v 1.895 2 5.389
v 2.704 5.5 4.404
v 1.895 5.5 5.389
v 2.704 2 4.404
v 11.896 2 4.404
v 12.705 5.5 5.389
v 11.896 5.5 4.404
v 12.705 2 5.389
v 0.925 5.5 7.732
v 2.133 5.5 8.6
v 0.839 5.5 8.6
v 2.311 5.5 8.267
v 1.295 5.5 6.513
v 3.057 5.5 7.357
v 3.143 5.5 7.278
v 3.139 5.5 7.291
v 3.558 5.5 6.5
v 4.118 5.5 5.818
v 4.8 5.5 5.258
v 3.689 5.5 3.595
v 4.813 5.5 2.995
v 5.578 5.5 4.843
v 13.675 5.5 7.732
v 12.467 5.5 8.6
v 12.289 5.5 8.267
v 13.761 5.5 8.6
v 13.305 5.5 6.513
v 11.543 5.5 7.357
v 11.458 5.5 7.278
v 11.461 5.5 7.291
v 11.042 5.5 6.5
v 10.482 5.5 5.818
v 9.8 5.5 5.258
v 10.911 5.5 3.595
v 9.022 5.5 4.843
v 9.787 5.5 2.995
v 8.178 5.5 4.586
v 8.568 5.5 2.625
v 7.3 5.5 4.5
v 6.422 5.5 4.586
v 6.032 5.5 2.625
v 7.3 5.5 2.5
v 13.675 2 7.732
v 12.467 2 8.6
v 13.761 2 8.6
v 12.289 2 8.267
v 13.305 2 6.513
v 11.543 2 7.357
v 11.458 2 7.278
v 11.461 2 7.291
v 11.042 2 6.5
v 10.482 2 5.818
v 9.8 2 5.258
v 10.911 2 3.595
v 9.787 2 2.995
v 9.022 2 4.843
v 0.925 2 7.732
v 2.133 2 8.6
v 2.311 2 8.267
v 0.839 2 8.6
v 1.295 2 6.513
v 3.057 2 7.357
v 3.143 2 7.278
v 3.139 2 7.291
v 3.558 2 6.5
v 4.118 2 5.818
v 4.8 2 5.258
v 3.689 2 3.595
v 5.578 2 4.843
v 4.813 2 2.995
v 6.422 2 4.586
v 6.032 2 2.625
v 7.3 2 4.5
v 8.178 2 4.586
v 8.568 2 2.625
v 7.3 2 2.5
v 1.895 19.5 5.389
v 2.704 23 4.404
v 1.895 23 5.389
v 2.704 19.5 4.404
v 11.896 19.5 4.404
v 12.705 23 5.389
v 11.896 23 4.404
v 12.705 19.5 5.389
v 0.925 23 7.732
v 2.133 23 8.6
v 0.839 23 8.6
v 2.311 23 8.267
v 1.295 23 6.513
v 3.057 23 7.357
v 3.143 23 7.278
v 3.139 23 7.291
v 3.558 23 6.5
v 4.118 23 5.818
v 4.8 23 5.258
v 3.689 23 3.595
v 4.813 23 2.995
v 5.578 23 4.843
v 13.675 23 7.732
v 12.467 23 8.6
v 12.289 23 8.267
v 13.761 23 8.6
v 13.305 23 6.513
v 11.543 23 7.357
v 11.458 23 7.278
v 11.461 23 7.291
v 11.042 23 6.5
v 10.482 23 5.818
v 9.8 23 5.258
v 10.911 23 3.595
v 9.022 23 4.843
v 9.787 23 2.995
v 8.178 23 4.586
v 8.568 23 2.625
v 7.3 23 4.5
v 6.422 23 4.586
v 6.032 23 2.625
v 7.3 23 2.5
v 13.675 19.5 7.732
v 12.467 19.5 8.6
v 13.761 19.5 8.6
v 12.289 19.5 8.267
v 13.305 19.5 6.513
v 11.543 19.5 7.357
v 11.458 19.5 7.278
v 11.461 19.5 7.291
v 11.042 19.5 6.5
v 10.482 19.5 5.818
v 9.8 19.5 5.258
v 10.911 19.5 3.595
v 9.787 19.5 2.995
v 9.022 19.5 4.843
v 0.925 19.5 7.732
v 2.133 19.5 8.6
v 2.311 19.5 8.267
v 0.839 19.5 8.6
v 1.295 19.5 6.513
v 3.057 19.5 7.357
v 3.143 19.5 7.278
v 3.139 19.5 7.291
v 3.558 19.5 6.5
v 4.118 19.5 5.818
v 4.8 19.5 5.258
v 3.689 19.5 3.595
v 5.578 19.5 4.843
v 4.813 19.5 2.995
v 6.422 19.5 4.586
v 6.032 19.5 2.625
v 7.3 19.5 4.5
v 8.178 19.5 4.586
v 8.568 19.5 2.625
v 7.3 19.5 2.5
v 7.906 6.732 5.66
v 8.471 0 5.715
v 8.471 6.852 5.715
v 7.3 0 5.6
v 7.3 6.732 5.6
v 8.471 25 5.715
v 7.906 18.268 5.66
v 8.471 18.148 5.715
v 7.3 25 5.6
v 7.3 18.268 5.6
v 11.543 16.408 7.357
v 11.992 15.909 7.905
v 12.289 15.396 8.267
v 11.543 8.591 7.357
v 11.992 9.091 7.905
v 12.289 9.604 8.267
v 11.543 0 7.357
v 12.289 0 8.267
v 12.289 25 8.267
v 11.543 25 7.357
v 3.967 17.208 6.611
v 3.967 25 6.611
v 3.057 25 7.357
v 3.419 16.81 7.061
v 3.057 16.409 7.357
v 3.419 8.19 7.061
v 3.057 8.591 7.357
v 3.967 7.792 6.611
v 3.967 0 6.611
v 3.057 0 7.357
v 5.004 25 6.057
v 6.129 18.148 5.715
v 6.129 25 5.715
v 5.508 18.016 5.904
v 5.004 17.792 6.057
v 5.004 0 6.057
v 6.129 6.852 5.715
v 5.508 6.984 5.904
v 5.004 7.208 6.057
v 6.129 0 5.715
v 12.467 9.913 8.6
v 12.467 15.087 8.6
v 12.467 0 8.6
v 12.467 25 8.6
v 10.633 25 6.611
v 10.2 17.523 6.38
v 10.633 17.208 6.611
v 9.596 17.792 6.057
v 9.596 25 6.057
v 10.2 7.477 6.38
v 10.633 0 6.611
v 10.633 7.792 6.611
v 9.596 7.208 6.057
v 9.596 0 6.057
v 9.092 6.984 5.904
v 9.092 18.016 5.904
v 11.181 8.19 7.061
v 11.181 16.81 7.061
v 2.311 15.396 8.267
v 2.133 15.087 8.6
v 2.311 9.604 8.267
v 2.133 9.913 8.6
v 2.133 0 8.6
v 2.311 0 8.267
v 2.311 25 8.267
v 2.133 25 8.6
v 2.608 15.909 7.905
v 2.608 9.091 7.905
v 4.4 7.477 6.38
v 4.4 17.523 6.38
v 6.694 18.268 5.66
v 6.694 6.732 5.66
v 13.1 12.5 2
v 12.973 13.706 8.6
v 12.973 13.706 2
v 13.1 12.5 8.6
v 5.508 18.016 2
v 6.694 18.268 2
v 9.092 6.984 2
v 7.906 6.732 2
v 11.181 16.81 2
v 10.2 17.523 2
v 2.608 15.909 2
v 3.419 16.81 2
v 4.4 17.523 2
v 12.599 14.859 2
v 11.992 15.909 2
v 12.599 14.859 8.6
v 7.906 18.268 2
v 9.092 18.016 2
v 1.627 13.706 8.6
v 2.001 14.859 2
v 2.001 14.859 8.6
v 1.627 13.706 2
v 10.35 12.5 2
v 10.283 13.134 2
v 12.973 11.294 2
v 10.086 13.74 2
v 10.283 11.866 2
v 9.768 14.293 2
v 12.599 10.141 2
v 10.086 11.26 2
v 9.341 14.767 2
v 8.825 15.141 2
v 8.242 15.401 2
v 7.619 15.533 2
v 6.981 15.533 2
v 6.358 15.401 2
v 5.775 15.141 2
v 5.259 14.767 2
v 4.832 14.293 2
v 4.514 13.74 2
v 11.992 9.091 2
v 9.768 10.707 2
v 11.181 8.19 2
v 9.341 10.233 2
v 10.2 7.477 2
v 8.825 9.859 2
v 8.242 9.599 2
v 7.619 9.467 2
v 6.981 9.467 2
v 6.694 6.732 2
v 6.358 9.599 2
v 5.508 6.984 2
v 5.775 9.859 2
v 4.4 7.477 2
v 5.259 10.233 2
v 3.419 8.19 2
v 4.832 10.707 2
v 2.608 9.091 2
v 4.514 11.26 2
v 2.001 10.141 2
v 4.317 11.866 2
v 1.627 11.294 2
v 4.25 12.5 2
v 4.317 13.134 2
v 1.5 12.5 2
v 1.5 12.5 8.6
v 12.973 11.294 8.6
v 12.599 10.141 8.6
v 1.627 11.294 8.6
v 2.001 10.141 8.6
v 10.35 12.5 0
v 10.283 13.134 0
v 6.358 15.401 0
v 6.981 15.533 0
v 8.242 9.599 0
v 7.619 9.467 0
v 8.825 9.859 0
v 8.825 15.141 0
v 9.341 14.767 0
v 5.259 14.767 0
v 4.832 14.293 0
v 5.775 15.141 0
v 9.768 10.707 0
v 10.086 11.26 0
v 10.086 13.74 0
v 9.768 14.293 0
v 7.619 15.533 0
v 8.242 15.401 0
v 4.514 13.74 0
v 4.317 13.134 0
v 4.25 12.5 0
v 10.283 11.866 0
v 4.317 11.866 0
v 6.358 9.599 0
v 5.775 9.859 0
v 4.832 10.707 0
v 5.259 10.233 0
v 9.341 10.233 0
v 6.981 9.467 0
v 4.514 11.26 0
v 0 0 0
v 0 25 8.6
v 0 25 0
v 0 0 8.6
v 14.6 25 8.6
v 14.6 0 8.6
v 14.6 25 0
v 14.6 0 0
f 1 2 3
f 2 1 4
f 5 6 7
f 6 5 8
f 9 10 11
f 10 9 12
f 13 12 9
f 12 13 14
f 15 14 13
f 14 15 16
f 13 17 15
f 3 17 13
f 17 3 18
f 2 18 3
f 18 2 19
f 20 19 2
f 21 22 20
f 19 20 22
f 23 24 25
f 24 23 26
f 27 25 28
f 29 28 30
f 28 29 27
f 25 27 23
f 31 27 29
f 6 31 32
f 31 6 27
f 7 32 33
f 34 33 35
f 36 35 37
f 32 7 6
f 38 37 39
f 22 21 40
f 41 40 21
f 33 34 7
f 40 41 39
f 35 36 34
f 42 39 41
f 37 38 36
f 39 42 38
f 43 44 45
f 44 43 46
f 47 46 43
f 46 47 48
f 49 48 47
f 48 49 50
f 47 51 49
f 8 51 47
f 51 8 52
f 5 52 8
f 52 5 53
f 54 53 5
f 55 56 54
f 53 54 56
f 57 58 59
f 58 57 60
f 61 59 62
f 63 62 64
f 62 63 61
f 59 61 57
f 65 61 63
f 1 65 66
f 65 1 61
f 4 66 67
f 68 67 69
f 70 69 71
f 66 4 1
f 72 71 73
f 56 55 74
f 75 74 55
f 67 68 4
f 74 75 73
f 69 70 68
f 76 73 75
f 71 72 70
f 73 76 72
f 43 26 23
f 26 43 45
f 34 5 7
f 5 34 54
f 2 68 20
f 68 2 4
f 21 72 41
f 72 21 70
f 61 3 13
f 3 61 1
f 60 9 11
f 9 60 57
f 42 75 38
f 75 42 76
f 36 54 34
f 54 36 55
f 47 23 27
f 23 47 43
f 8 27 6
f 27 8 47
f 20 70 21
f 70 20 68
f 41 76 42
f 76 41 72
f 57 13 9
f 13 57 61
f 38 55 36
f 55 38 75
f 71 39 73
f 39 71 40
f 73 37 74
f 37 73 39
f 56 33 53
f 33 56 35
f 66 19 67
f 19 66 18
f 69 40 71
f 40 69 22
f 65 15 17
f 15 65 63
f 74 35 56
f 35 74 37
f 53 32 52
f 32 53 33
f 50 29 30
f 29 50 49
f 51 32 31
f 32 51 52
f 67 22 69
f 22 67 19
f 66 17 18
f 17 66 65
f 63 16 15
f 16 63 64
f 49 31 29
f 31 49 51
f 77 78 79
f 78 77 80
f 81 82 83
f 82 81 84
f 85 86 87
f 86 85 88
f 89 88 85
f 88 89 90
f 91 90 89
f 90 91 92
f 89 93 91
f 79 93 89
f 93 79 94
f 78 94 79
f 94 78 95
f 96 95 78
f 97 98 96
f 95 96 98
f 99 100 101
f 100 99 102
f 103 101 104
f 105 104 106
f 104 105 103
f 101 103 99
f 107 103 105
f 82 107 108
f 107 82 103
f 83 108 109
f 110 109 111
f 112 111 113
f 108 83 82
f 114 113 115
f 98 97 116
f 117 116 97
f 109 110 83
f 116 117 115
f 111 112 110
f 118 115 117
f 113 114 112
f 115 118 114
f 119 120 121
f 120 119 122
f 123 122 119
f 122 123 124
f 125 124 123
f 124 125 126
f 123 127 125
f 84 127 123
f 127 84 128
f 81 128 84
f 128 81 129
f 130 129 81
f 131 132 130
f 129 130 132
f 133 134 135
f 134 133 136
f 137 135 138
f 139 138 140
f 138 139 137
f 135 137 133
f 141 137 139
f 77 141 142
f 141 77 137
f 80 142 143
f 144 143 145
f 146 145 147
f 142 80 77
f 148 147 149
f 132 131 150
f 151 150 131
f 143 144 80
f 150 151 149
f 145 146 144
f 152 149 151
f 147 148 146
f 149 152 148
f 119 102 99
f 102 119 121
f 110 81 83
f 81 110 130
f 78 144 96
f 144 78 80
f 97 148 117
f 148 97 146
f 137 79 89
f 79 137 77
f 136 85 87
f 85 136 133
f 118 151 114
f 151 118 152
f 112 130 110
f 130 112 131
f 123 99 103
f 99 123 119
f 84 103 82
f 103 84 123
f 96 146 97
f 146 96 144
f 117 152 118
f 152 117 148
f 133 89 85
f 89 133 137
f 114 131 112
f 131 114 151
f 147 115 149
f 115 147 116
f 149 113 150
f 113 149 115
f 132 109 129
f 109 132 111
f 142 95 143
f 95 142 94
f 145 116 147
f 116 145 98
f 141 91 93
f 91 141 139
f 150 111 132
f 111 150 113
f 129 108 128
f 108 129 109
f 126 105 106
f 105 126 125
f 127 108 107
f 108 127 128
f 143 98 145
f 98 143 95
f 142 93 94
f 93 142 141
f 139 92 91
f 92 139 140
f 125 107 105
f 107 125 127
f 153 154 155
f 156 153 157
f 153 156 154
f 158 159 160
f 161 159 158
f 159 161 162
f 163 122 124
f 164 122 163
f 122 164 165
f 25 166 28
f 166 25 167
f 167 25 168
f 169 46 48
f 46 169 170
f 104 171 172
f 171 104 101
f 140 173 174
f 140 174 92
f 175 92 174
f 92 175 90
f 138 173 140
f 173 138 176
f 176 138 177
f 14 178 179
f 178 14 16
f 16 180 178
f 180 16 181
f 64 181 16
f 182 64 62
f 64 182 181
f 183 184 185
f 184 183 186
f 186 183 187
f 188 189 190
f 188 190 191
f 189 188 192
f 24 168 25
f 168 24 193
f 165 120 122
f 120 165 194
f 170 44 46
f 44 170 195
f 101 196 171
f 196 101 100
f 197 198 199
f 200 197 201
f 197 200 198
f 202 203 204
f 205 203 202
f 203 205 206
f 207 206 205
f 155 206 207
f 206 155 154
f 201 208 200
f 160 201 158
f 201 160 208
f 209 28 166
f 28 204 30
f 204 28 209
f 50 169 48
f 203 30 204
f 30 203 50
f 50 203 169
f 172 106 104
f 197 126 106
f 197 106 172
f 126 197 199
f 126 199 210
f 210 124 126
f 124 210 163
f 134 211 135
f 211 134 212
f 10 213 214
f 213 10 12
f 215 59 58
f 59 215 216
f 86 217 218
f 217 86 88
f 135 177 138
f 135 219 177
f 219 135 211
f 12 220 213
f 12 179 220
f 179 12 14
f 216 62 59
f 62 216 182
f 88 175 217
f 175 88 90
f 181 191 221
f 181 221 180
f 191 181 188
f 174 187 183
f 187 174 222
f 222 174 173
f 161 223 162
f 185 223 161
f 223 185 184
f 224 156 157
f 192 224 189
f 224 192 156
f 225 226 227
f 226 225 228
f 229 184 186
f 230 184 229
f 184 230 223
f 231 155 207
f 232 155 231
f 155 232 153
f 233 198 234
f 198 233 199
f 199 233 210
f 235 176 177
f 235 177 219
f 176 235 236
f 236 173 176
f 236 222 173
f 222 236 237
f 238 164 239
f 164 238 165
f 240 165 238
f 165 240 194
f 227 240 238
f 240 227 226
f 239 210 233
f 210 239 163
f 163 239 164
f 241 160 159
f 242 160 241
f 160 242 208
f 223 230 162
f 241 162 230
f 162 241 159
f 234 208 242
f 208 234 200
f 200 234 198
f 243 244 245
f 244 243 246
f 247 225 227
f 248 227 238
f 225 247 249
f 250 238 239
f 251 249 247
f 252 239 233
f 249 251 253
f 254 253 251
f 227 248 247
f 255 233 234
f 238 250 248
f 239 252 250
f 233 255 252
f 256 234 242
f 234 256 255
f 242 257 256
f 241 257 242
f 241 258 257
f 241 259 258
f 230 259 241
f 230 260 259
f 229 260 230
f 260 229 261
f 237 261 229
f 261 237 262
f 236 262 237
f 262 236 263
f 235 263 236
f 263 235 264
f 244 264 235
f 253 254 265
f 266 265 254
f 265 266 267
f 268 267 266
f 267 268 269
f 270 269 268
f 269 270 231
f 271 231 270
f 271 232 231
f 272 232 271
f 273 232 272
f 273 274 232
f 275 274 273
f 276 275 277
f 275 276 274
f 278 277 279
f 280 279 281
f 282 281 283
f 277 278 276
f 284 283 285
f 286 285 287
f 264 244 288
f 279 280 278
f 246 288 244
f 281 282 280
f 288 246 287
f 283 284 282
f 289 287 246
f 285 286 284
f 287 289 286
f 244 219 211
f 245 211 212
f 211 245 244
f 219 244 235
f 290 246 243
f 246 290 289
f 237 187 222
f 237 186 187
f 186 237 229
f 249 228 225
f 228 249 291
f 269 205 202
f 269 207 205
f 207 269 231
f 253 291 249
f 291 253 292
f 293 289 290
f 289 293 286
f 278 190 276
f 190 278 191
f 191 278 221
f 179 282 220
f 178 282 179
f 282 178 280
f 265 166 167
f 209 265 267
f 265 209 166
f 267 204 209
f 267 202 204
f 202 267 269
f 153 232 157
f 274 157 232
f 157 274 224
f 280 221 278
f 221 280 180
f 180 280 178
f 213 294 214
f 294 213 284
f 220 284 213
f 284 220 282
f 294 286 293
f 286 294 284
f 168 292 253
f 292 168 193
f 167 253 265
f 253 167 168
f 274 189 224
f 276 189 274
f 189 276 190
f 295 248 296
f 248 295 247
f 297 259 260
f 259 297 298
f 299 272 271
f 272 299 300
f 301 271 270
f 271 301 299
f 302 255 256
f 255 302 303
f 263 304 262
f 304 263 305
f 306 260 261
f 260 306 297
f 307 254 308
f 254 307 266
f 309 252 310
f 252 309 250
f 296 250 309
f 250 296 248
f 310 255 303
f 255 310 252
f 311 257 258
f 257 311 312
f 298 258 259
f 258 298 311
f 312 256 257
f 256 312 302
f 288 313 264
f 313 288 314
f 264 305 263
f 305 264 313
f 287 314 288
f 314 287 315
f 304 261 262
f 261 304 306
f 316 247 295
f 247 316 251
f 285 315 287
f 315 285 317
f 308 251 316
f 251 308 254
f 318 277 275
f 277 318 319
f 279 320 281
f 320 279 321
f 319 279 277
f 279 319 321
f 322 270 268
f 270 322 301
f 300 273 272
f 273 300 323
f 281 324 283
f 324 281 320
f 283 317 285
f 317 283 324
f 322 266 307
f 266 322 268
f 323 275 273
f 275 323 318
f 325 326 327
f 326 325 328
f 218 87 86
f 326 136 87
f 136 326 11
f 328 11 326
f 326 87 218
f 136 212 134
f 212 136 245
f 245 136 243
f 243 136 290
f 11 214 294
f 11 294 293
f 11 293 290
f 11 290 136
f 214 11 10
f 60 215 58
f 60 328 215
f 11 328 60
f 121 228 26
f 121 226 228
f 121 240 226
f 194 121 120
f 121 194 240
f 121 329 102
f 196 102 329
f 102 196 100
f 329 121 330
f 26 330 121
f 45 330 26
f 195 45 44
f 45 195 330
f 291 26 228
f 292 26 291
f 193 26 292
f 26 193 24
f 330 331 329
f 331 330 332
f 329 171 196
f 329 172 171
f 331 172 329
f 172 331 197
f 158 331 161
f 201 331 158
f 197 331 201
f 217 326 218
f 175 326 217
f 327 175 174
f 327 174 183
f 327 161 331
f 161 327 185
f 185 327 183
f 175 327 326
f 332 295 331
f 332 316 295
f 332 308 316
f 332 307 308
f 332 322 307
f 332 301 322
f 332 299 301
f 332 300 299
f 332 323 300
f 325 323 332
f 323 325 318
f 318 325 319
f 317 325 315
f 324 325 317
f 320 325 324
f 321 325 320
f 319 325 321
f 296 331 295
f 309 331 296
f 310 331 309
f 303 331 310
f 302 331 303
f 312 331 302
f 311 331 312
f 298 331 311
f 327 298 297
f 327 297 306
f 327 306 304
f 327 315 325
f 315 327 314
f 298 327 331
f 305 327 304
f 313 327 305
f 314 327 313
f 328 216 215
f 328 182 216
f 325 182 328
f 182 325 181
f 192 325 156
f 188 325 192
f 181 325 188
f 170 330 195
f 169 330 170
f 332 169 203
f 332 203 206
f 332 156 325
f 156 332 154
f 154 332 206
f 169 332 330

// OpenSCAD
// file: ../configuration.scad
/*
	Konfiguracni soubor 3D tiskarny RebeliX X2
	
	Sledujte nas na:		  
			www.RepRap4U.cz
			www.facebook.com/RebeliX.cz
			https://twitter.com/reprap4u
			https://plus.google.com/+Reprap4uCz-3Dtiskarna-RebeliX
*/

/*================ Slic3r nastaveni ==========================*/

// Vyska vrstvy pro tisknuti dilu [mm]
layer_height = 0.3;

// Sirka vytlacovaneho materialu [mm]
extrusion_width = 0.66; //Slic3r->Print Settings->Advanced->Default extrusion width

/*==================== M6 sroub ==============================*/

// Rezerva prumeru hlavy sroubu [mm]
space = 1;

// Prumer hlavy M6 sroubu (pricte se rezerva) [mm]
M6_head_diameter = 10.6+space;
//M6_head_diameter = 12+space;

// Vyska hlavy M6 sroubu (dulezite pro zapusteni hlavy sroubu do plastu) [mm]
M6_head_height = 3.6;
//M6_head_height = 4.5;

// Delka sroubu M6 [mm]
// M6x12
M6_lenght = 12;

/*=================== Nastaveni dilu =========================*/

// Posun Z zakladny
z_base_offset = 11;

// Tloustka rohovych spojek
// 5 mm => sroub M6x14 s podlozkou
// 3 mm => sroub M6x12 s podlozkou
coupler_thickness = 5;

// Prumer 8mm tyce
rod_8mm_d = 8.2;

// Posun drzacku mezi x-motor a x-end
x_holder_position = 6.5;

/*======================== Motory ============================*/

// Delka motoru (ovlivni dily a delky tyci pro osy Z a Y)
//SX17-1003LQFE (doporuceno hlavne na osu Z)
motor_length = 29.5;
//SX17-1003 (doporuceno hlavne na osu Z), SX17-0503LQEF
//motor_length = 34;
//SX17-1005
//motor_length = 40;
//SX17-0905 - zde je jiz problem s velkou vyskou motoru na ose Z - musi se upravit endstop-holder
//motor_length = 48;

/*================ Remeny a remenicky ========================*/

// GT2 
belt_tooth_distance = 2;
belt_tooth_ratio = 0.5;

// T2.5
//belt_tooth_distance = 2.5;
//belt_tooth_ratio = 0.68;
// main file
// RebeliX
//
// heatbed-cable-holder
// GNU GPL v3
// Martin Neruda <neruda@reprap4u.cz>
// http://www.reprap4u.cz

include <../configuration.scad>

delka = 25;
sirka = M6_head_diameter + 3;
vyska = M6_head_height+2+3;

module holder_base(){
	cube([sirka,delka,vyska]);
}

module holder_cuts(){
	// Zlabek pro kabel
	translate([sirka/2,-0.1,6+M6_head_height+2]) rotate([-90,0,0]) cylinder(r=6,h=delka+1,$fn=32);
    // Otvor pro M6 sroub
	translate([sirka/2,delka/2,2]) cylinder(r = M6_head_diameter/2, h = 10, $fn = 30);
	translate([sirka/2,delka/2,-0.1]) cylinder(r = 3.05, h = 10, $fn = 30);
	// Otvor pro ZIP pasku
	translate([sirka/2,5.5,9]) rotate([90,0,0]) zip_paska(6.5);
	translate([sirka/2,delka-5.5+3.5,9]) rotate([90,0,0]) zip_paska(6.5);	
}

module zip_paska(r_vnejsi){
  difference(){
    cylinder(r=r_vnejsi,h=3.5,$fn=32);
    cylinder(r=r_vnejsi-2,h=3.5,$fn=32);
  }
}

difference(){
  holder_base();
  holder_cuts();
}
